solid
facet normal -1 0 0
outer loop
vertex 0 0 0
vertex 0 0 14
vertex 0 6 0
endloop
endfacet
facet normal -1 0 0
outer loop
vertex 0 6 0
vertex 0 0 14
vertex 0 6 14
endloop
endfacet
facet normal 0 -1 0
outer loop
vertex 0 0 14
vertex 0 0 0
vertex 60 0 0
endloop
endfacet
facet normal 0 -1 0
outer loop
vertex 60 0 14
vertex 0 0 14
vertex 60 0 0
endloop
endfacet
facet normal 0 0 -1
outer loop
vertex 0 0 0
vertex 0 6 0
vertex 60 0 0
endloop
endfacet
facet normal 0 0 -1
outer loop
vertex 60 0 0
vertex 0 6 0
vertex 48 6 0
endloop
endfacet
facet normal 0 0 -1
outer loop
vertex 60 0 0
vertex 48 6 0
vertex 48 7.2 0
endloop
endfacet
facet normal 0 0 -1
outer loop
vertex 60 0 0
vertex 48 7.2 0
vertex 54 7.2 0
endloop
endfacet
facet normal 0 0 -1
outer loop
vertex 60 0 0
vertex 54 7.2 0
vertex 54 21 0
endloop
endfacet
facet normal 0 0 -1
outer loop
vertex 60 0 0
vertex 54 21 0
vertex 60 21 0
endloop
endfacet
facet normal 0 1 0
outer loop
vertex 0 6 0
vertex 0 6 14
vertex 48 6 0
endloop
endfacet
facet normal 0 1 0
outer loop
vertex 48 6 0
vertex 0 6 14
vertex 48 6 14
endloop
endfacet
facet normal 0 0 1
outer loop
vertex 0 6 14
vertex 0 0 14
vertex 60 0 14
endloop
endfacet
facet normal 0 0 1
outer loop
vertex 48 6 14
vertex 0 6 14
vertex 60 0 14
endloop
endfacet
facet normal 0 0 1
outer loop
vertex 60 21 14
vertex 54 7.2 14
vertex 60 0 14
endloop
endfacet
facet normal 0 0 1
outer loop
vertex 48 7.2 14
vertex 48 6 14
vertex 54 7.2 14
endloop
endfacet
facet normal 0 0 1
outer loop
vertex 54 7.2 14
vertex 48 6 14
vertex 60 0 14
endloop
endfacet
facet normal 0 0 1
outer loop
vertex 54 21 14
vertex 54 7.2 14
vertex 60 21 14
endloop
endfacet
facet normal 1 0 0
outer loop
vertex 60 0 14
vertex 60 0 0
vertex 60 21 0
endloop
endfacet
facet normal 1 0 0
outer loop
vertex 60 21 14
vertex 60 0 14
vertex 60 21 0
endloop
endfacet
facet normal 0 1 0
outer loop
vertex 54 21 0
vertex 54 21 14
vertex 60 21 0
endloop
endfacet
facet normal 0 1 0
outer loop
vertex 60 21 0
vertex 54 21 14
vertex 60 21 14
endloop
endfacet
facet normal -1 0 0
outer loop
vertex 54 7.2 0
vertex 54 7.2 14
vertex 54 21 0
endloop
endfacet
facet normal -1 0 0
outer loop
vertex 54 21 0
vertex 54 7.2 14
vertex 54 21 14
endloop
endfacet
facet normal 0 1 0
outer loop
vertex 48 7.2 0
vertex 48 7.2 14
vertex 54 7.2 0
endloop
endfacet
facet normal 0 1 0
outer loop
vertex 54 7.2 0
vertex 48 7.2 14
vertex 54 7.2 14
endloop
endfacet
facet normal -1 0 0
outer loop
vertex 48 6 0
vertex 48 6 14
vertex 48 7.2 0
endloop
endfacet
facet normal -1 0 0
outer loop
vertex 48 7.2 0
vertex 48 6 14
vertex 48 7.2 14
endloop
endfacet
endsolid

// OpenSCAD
largura = 14;
altura = 6;

union() {
	brace1();
	brace2();
	brace3();
}

module brace1() {
	cube([60, altura, largura]);
}

module brace2() {
	translate([60-altura,altura,0])
	cube([altura, 15, largura]);
}

module brace3() {
	translate([60-altura-6,altura,0])
	cube([6, 1.2, largura]);
}
